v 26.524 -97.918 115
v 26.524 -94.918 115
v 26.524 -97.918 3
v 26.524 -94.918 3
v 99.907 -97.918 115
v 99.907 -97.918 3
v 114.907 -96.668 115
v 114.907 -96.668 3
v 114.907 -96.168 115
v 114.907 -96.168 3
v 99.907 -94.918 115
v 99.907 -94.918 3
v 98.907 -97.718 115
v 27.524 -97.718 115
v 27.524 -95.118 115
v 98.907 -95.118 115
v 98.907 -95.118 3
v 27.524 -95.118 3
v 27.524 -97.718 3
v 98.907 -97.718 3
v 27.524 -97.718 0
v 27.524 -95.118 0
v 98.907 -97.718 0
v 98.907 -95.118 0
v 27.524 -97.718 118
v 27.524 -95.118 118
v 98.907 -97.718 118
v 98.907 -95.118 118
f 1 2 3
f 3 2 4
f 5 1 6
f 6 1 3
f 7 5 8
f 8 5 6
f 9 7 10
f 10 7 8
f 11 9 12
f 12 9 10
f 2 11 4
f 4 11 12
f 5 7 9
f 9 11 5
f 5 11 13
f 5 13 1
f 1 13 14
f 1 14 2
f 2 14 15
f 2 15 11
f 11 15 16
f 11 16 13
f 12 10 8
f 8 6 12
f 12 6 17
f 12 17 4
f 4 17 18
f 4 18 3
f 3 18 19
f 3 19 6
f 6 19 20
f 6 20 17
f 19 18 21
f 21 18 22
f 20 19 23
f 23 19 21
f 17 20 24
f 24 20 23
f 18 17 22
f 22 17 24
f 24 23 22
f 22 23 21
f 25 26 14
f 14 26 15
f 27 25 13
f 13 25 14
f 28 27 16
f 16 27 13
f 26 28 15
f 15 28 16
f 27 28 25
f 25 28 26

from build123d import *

# Parameters (mm, degrees)
BODY_DEPTH     = 112
SKETCH2_W      = 71.382300335
SKETCH2_H      = 2.6
TAB_LOW_DEPTH  = 3
SKETCH3_W      = 71.382300335
SKETCH3_H      = 2.6
TAB_HIGH_DEPTH = 3


with BuildPart() as part:
    # Sketch1 → Body (new body)
    with BuildSketch(Plane.XY.offset(3)):
        Polygon((26.524366133, -97.918141453), (99.906666468, -97.918141453), (114.906666468, -96.668141453), (114.906666468, -96.168141453), (99.906666468, -94.918141453), (26.524366133, -94.918141453), align=None)
    extrude(amount=BODY_DEPTH)

    # Sketch2 → Tab_low (add)
    with BuildSketch(Plane.XY):
        with Locations((63.215516301, -96.418141453)):
            Rectangle(SKETCH2_W, SKETCH2_H)
    extrude(amount=TAB_LOW_DEPTH)

    # Sketch3 → Tab_high (add)
    with BuildSketch(Plane.XY.offset(115)):
        with Locations((63.215516301, -96.418141453)):
            Rectangle(SKETCH3_W, SKETCH3_H)
    extrude(amount=TAB_HIGH_DEPTH)


solid = part.part
